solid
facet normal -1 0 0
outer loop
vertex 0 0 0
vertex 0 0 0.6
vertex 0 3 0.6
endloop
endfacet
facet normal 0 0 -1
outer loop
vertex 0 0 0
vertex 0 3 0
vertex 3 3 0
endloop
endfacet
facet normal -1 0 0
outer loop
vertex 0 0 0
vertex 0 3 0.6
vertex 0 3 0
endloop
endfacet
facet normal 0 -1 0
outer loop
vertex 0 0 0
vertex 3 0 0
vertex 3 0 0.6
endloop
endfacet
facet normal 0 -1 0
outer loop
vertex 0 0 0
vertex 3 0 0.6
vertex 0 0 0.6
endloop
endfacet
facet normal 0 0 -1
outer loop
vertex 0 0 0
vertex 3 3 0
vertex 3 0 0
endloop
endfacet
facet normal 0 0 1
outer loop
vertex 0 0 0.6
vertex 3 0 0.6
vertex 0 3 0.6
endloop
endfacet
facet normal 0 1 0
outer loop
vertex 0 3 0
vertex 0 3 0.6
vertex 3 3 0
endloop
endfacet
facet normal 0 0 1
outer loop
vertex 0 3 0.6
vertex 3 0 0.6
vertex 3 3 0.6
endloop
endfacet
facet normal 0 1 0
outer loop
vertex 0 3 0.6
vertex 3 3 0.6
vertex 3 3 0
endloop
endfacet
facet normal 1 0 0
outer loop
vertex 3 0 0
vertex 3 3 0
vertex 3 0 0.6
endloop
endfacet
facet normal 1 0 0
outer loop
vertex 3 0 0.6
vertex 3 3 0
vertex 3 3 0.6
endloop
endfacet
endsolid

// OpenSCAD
/* Warning, this is a very basic generator with a lot of approximation 
input data : [UFBGA, BNB, 3x3x0.6mm, 15, , A, C04-21151A]
generated by com.zoubworld.electronics.cad.model3d.Basic
Date : Sun Feb 15 10:50:49 CET 2026
*/

//body
color("black")
translate([0,0,0])
cube([3.0,3.0,0.6], center=false);
